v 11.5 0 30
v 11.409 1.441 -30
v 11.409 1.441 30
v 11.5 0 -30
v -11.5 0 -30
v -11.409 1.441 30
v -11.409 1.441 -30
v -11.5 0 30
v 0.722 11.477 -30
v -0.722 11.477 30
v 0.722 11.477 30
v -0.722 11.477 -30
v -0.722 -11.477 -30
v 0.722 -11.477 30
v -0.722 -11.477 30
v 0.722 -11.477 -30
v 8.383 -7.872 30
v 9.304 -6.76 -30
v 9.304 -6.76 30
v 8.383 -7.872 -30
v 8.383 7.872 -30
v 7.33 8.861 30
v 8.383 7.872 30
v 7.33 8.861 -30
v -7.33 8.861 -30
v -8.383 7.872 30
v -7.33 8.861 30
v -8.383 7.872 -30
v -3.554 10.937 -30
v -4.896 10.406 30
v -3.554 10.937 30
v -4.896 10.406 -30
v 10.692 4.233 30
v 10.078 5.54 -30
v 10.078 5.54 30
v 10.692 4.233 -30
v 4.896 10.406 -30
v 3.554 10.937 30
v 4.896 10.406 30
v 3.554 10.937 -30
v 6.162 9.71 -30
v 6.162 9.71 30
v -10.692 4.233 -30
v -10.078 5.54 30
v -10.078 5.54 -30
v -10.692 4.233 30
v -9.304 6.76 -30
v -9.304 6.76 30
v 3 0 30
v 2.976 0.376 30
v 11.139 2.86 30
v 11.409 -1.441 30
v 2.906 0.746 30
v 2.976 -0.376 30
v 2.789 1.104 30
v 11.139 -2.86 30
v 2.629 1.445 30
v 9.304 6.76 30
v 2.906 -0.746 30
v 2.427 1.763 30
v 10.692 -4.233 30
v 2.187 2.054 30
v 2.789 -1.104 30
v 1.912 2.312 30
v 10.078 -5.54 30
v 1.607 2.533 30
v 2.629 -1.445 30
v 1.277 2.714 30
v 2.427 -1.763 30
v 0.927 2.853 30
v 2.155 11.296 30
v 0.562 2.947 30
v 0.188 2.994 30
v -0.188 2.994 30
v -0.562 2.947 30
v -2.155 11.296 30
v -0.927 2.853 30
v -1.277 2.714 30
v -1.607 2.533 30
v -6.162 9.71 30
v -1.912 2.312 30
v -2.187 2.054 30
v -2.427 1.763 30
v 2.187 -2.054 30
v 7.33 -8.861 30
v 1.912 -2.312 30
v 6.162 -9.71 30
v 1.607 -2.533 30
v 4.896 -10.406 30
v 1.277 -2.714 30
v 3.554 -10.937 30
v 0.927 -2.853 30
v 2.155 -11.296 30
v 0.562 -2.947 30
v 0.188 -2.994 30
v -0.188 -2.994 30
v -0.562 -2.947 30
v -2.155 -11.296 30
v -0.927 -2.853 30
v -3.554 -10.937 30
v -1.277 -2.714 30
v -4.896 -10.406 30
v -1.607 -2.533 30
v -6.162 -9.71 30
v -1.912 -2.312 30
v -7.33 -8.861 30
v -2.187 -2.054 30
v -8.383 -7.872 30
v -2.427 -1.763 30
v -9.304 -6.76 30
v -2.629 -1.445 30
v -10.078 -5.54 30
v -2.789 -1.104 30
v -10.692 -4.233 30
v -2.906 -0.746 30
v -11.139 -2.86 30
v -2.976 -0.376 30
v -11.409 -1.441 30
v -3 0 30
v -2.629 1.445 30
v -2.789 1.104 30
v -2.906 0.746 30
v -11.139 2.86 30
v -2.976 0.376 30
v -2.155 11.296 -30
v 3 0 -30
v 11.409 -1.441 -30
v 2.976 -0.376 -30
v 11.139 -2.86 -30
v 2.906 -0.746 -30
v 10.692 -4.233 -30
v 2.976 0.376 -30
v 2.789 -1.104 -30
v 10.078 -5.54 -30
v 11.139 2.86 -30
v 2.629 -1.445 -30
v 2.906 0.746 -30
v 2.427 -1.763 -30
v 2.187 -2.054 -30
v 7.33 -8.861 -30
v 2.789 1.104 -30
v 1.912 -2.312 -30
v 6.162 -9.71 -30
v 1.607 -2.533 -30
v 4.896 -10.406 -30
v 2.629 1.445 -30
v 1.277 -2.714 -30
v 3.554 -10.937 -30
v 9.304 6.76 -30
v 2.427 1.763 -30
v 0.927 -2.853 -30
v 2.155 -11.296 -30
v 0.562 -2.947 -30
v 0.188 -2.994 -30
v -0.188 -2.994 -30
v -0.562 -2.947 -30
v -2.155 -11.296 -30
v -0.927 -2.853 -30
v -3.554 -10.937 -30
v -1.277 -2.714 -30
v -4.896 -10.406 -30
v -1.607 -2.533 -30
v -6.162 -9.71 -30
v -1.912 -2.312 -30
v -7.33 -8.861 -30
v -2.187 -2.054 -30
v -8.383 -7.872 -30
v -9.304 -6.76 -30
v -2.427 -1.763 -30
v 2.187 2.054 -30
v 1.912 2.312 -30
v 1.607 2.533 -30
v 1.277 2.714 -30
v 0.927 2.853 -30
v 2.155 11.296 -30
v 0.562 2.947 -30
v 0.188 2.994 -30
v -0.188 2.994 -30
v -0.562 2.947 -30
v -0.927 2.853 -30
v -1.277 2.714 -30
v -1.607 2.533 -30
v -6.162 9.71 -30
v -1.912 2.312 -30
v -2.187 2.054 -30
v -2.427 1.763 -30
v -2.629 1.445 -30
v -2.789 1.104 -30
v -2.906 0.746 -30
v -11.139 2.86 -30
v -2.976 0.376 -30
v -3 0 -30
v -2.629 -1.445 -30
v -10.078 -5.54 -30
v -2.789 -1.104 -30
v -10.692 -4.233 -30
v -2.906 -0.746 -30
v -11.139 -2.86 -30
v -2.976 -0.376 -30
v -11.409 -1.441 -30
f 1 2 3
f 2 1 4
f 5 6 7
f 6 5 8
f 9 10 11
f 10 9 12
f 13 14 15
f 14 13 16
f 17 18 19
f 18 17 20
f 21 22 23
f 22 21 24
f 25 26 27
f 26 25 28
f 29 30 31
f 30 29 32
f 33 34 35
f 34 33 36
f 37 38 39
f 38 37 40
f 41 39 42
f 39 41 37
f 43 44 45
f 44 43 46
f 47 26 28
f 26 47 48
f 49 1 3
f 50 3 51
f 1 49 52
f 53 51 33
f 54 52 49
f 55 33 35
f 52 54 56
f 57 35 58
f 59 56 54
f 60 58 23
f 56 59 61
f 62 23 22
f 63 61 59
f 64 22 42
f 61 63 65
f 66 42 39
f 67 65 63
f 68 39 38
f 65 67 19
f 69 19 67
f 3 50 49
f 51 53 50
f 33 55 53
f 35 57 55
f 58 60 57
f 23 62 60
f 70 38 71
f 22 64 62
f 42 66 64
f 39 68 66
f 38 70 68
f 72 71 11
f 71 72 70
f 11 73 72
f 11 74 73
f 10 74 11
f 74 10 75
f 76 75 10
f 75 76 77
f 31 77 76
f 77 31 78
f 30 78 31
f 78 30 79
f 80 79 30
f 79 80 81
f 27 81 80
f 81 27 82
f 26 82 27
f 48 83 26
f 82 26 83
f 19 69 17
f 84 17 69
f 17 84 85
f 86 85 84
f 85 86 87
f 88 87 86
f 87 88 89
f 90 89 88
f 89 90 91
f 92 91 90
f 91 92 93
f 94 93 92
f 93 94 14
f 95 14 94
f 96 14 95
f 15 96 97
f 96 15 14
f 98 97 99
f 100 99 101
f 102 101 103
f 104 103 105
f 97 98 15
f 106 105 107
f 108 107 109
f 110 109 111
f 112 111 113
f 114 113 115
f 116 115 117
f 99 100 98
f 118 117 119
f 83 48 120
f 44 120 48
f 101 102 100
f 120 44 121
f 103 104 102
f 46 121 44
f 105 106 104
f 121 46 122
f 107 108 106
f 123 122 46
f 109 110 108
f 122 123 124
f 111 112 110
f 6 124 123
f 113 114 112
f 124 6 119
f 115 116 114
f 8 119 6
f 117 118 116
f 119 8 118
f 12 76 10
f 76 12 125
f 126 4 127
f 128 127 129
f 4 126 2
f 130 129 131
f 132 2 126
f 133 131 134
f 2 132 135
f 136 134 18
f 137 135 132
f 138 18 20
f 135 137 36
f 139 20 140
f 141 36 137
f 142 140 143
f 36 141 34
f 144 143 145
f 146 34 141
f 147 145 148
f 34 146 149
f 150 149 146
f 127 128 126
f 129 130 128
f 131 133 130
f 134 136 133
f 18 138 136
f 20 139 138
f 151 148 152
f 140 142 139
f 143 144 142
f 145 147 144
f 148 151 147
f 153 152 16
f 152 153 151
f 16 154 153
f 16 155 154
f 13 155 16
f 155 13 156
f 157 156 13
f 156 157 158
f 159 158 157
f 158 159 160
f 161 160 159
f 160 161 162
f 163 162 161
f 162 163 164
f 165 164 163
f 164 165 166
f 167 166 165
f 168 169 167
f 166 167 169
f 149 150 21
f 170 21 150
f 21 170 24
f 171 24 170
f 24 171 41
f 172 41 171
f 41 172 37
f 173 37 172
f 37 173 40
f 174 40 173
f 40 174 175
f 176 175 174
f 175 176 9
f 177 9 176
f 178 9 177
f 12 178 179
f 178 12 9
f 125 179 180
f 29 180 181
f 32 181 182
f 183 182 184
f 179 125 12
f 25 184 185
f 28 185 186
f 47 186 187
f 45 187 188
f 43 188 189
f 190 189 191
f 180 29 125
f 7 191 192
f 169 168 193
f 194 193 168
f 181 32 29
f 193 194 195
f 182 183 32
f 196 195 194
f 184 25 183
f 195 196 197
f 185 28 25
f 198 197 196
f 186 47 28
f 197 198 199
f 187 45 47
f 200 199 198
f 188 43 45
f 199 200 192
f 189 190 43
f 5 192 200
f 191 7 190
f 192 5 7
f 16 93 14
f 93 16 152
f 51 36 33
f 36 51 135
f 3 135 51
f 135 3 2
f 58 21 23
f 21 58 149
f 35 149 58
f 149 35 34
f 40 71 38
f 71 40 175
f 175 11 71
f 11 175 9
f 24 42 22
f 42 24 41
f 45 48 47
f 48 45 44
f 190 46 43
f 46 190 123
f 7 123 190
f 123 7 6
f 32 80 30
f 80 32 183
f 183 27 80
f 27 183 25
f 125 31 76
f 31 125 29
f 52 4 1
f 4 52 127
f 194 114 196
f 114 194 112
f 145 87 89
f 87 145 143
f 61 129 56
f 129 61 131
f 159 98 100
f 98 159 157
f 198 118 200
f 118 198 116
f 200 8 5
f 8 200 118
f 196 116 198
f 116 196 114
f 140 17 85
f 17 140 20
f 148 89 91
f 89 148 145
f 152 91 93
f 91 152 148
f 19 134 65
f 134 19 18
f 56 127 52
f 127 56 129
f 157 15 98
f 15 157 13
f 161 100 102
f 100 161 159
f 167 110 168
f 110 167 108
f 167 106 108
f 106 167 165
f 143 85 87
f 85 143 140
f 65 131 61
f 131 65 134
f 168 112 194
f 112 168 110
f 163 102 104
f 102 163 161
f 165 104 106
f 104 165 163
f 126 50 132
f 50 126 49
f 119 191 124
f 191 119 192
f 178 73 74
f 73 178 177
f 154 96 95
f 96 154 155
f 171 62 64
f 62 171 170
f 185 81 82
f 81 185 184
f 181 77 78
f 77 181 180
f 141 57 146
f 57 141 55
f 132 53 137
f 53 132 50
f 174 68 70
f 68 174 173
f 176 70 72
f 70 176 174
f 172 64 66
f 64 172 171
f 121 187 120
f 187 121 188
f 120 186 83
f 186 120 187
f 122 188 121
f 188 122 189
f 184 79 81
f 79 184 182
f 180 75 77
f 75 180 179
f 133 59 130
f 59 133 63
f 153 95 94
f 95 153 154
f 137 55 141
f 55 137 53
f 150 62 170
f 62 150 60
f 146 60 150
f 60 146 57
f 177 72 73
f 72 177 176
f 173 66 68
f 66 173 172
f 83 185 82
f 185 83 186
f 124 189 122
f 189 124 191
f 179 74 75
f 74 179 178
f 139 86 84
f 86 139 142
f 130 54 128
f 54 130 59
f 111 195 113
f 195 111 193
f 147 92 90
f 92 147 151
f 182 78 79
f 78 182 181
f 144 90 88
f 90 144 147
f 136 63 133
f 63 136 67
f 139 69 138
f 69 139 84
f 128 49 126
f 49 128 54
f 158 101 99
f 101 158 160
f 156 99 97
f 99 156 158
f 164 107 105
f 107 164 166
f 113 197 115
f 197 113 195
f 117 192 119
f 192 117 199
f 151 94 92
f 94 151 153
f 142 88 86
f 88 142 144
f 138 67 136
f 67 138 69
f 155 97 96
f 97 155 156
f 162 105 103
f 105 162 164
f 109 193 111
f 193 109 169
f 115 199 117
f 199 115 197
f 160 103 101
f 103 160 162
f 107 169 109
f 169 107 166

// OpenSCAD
$fn = 50;


difference() {
	union() {
		translate(v = [0, 0, -30.0000000000]) {
			cylinder(h = 60, r = 11.5000000000);
		}
	}
	union() {
		translate(v = [0, 0, -100.0000000000]) {
			cylinder(h = 200, r = 3);
		}
	}
}
